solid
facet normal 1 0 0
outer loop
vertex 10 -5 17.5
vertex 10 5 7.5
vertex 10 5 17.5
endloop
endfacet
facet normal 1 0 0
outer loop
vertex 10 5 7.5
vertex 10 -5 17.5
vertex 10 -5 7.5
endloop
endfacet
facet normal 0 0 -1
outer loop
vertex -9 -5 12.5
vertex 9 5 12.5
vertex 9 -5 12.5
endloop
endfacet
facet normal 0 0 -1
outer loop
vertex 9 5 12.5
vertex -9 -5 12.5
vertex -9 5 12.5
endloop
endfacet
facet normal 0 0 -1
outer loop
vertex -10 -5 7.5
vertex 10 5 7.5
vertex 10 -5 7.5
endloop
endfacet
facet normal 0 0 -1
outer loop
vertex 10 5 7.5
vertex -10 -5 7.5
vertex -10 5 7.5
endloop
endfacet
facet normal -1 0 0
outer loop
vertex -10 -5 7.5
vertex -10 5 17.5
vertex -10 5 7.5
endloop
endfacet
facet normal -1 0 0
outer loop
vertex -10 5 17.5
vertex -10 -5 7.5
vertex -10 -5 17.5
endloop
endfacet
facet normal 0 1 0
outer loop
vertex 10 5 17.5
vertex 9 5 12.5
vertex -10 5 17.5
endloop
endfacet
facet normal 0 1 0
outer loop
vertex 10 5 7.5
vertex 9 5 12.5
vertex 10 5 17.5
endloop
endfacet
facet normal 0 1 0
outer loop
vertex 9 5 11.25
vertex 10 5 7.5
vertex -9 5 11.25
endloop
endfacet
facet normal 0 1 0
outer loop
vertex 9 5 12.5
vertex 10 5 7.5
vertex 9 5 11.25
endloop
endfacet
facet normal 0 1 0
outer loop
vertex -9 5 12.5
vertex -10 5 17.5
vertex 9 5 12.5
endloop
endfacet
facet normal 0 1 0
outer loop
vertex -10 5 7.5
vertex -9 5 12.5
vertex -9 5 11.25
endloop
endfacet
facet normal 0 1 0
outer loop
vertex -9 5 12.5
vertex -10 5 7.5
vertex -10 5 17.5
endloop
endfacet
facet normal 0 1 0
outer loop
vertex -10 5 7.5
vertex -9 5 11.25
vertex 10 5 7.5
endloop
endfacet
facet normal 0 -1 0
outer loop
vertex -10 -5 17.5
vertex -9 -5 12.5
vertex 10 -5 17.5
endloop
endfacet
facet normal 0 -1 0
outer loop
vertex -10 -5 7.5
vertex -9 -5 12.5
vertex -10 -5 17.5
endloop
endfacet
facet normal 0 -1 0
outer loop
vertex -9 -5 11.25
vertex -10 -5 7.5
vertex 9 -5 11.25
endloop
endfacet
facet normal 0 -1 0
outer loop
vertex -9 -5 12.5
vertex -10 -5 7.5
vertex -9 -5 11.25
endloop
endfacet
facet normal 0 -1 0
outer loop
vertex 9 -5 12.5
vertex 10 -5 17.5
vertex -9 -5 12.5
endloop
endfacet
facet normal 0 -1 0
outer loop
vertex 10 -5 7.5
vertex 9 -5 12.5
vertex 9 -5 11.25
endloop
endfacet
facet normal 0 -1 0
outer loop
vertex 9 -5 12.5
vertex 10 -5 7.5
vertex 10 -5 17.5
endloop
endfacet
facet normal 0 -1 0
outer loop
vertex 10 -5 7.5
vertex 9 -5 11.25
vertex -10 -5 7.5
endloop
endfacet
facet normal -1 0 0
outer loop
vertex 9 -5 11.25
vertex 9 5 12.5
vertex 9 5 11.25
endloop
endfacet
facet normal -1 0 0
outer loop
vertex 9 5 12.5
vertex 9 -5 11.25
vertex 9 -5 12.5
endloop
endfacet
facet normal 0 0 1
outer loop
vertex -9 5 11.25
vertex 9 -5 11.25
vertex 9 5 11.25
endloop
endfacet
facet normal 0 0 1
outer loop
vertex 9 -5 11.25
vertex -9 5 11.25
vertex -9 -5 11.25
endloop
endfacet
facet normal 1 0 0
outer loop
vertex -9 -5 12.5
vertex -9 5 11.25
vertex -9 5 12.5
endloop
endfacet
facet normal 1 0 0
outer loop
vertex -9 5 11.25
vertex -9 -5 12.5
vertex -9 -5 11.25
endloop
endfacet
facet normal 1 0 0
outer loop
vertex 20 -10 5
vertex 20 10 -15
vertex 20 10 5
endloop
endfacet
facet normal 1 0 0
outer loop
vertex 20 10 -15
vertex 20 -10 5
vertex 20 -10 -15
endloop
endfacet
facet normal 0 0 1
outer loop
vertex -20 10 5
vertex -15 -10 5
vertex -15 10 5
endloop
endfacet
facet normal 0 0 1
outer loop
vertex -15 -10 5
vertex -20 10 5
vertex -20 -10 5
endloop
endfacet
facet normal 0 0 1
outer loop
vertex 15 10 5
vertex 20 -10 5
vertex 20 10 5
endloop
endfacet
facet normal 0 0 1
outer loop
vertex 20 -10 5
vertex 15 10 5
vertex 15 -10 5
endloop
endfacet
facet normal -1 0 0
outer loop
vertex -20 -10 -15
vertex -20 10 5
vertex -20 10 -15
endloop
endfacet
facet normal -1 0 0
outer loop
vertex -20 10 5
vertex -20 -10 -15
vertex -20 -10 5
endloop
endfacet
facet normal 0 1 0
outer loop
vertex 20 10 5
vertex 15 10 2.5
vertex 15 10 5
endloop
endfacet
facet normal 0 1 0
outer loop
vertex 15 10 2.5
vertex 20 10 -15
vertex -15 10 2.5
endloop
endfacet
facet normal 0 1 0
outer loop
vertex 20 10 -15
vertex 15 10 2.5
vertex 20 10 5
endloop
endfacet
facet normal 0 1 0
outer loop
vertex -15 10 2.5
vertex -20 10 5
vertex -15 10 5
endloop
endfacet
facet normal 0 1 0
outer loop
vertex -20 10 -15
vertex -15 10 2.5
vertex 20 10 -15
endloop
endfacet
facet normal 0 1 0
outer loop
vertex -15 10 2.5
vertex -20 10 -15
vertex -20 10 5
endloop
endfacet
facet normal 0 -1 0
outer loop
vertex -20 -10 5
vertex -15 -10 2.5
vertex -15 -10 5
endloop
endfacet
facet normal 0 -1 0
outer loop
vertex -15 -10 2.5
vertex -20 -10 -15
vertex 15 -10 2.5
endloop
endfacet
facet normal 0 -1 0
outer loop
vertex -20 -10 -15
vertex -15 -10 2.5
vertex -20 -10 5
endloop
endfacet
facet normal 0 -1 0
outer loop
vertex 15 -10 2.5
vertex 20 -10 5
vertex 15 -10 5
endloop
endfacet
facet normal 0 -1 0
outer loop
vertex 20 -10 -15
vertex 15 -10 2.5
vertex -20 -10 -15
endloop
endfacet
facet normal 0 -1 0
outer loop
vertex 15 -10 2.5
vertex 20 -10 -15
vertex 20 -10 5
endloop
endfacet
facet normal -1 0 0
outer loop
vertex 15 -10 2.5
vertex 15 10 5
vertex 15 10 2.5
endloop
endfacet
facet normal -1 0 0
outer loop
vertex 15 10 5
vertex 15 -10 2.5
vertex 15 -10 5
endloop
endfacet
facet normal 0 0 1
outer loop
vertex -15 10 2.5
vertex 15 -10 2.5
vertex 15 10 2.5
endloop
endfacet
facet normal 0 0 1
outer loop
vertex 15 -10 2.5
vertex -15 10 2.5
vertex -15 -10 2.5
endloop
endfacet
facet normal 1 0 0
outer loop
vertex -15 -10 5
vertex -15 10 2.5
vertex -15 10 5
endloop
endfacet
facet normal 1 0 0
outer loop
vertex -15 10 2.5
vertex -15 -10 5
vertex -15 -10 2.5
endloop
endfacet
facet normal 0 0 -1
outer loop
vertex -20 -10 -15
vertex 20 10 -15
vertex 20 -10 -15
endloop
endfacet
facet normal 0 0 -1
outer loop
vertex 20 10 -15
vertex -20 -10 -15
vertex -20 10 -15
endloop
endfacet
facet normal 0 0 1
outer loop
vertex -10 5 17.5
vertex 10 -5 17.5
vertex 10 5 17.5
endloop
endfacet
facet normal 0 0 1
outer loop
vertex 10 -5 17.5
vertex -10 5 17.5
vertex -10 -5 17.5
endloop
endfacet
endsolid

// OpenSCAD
// Define dimensions for each component
module central_block() {
    // Adjusted to remove the extra recessed step and match the symmetrical two-level structure
    difference() {
        cube([40, 20, 10], center = true);
        translate([0, 0, 5])
            cube([30, 20, 5], center = true);
    }
}

module side_block() {
    // Adjusted to reduce the depth of the recessed step
    difference() {
        cube([40, 20, 10], center = true);
        translate([15, 0, 8]) // Reduced depth of the recessed step
            cube([10, 20, 2], center = true);
    }
}

module spacer_block() {
    // Adjusted to reduce the size of the stepped profile
    difference() {
        cube([20, 10, 5], center = true);
        translate([0, 0, 2.5])
            cube([18, 10, 2.5], center = true); // Reduced size of the stepped profile
    }
}

module end_block() {
    // Adjusted to remove the protrusion and make the block flat and symmetrical
    cube([20, 10, 5], center = true);
}

// Assemble the components based on the positional relationship
module assembly() {
    translate([0, 0, 15]) end_block(); // Layer 1
    translate([0, 0, 10]) spacer_block(); // Layer 2
    translate([0, 0, 0]) central_block(); // Layer 3
    translate([0, 0, -10]) side_block(); // Layer 4
}

// Render the assembly
assembly();
